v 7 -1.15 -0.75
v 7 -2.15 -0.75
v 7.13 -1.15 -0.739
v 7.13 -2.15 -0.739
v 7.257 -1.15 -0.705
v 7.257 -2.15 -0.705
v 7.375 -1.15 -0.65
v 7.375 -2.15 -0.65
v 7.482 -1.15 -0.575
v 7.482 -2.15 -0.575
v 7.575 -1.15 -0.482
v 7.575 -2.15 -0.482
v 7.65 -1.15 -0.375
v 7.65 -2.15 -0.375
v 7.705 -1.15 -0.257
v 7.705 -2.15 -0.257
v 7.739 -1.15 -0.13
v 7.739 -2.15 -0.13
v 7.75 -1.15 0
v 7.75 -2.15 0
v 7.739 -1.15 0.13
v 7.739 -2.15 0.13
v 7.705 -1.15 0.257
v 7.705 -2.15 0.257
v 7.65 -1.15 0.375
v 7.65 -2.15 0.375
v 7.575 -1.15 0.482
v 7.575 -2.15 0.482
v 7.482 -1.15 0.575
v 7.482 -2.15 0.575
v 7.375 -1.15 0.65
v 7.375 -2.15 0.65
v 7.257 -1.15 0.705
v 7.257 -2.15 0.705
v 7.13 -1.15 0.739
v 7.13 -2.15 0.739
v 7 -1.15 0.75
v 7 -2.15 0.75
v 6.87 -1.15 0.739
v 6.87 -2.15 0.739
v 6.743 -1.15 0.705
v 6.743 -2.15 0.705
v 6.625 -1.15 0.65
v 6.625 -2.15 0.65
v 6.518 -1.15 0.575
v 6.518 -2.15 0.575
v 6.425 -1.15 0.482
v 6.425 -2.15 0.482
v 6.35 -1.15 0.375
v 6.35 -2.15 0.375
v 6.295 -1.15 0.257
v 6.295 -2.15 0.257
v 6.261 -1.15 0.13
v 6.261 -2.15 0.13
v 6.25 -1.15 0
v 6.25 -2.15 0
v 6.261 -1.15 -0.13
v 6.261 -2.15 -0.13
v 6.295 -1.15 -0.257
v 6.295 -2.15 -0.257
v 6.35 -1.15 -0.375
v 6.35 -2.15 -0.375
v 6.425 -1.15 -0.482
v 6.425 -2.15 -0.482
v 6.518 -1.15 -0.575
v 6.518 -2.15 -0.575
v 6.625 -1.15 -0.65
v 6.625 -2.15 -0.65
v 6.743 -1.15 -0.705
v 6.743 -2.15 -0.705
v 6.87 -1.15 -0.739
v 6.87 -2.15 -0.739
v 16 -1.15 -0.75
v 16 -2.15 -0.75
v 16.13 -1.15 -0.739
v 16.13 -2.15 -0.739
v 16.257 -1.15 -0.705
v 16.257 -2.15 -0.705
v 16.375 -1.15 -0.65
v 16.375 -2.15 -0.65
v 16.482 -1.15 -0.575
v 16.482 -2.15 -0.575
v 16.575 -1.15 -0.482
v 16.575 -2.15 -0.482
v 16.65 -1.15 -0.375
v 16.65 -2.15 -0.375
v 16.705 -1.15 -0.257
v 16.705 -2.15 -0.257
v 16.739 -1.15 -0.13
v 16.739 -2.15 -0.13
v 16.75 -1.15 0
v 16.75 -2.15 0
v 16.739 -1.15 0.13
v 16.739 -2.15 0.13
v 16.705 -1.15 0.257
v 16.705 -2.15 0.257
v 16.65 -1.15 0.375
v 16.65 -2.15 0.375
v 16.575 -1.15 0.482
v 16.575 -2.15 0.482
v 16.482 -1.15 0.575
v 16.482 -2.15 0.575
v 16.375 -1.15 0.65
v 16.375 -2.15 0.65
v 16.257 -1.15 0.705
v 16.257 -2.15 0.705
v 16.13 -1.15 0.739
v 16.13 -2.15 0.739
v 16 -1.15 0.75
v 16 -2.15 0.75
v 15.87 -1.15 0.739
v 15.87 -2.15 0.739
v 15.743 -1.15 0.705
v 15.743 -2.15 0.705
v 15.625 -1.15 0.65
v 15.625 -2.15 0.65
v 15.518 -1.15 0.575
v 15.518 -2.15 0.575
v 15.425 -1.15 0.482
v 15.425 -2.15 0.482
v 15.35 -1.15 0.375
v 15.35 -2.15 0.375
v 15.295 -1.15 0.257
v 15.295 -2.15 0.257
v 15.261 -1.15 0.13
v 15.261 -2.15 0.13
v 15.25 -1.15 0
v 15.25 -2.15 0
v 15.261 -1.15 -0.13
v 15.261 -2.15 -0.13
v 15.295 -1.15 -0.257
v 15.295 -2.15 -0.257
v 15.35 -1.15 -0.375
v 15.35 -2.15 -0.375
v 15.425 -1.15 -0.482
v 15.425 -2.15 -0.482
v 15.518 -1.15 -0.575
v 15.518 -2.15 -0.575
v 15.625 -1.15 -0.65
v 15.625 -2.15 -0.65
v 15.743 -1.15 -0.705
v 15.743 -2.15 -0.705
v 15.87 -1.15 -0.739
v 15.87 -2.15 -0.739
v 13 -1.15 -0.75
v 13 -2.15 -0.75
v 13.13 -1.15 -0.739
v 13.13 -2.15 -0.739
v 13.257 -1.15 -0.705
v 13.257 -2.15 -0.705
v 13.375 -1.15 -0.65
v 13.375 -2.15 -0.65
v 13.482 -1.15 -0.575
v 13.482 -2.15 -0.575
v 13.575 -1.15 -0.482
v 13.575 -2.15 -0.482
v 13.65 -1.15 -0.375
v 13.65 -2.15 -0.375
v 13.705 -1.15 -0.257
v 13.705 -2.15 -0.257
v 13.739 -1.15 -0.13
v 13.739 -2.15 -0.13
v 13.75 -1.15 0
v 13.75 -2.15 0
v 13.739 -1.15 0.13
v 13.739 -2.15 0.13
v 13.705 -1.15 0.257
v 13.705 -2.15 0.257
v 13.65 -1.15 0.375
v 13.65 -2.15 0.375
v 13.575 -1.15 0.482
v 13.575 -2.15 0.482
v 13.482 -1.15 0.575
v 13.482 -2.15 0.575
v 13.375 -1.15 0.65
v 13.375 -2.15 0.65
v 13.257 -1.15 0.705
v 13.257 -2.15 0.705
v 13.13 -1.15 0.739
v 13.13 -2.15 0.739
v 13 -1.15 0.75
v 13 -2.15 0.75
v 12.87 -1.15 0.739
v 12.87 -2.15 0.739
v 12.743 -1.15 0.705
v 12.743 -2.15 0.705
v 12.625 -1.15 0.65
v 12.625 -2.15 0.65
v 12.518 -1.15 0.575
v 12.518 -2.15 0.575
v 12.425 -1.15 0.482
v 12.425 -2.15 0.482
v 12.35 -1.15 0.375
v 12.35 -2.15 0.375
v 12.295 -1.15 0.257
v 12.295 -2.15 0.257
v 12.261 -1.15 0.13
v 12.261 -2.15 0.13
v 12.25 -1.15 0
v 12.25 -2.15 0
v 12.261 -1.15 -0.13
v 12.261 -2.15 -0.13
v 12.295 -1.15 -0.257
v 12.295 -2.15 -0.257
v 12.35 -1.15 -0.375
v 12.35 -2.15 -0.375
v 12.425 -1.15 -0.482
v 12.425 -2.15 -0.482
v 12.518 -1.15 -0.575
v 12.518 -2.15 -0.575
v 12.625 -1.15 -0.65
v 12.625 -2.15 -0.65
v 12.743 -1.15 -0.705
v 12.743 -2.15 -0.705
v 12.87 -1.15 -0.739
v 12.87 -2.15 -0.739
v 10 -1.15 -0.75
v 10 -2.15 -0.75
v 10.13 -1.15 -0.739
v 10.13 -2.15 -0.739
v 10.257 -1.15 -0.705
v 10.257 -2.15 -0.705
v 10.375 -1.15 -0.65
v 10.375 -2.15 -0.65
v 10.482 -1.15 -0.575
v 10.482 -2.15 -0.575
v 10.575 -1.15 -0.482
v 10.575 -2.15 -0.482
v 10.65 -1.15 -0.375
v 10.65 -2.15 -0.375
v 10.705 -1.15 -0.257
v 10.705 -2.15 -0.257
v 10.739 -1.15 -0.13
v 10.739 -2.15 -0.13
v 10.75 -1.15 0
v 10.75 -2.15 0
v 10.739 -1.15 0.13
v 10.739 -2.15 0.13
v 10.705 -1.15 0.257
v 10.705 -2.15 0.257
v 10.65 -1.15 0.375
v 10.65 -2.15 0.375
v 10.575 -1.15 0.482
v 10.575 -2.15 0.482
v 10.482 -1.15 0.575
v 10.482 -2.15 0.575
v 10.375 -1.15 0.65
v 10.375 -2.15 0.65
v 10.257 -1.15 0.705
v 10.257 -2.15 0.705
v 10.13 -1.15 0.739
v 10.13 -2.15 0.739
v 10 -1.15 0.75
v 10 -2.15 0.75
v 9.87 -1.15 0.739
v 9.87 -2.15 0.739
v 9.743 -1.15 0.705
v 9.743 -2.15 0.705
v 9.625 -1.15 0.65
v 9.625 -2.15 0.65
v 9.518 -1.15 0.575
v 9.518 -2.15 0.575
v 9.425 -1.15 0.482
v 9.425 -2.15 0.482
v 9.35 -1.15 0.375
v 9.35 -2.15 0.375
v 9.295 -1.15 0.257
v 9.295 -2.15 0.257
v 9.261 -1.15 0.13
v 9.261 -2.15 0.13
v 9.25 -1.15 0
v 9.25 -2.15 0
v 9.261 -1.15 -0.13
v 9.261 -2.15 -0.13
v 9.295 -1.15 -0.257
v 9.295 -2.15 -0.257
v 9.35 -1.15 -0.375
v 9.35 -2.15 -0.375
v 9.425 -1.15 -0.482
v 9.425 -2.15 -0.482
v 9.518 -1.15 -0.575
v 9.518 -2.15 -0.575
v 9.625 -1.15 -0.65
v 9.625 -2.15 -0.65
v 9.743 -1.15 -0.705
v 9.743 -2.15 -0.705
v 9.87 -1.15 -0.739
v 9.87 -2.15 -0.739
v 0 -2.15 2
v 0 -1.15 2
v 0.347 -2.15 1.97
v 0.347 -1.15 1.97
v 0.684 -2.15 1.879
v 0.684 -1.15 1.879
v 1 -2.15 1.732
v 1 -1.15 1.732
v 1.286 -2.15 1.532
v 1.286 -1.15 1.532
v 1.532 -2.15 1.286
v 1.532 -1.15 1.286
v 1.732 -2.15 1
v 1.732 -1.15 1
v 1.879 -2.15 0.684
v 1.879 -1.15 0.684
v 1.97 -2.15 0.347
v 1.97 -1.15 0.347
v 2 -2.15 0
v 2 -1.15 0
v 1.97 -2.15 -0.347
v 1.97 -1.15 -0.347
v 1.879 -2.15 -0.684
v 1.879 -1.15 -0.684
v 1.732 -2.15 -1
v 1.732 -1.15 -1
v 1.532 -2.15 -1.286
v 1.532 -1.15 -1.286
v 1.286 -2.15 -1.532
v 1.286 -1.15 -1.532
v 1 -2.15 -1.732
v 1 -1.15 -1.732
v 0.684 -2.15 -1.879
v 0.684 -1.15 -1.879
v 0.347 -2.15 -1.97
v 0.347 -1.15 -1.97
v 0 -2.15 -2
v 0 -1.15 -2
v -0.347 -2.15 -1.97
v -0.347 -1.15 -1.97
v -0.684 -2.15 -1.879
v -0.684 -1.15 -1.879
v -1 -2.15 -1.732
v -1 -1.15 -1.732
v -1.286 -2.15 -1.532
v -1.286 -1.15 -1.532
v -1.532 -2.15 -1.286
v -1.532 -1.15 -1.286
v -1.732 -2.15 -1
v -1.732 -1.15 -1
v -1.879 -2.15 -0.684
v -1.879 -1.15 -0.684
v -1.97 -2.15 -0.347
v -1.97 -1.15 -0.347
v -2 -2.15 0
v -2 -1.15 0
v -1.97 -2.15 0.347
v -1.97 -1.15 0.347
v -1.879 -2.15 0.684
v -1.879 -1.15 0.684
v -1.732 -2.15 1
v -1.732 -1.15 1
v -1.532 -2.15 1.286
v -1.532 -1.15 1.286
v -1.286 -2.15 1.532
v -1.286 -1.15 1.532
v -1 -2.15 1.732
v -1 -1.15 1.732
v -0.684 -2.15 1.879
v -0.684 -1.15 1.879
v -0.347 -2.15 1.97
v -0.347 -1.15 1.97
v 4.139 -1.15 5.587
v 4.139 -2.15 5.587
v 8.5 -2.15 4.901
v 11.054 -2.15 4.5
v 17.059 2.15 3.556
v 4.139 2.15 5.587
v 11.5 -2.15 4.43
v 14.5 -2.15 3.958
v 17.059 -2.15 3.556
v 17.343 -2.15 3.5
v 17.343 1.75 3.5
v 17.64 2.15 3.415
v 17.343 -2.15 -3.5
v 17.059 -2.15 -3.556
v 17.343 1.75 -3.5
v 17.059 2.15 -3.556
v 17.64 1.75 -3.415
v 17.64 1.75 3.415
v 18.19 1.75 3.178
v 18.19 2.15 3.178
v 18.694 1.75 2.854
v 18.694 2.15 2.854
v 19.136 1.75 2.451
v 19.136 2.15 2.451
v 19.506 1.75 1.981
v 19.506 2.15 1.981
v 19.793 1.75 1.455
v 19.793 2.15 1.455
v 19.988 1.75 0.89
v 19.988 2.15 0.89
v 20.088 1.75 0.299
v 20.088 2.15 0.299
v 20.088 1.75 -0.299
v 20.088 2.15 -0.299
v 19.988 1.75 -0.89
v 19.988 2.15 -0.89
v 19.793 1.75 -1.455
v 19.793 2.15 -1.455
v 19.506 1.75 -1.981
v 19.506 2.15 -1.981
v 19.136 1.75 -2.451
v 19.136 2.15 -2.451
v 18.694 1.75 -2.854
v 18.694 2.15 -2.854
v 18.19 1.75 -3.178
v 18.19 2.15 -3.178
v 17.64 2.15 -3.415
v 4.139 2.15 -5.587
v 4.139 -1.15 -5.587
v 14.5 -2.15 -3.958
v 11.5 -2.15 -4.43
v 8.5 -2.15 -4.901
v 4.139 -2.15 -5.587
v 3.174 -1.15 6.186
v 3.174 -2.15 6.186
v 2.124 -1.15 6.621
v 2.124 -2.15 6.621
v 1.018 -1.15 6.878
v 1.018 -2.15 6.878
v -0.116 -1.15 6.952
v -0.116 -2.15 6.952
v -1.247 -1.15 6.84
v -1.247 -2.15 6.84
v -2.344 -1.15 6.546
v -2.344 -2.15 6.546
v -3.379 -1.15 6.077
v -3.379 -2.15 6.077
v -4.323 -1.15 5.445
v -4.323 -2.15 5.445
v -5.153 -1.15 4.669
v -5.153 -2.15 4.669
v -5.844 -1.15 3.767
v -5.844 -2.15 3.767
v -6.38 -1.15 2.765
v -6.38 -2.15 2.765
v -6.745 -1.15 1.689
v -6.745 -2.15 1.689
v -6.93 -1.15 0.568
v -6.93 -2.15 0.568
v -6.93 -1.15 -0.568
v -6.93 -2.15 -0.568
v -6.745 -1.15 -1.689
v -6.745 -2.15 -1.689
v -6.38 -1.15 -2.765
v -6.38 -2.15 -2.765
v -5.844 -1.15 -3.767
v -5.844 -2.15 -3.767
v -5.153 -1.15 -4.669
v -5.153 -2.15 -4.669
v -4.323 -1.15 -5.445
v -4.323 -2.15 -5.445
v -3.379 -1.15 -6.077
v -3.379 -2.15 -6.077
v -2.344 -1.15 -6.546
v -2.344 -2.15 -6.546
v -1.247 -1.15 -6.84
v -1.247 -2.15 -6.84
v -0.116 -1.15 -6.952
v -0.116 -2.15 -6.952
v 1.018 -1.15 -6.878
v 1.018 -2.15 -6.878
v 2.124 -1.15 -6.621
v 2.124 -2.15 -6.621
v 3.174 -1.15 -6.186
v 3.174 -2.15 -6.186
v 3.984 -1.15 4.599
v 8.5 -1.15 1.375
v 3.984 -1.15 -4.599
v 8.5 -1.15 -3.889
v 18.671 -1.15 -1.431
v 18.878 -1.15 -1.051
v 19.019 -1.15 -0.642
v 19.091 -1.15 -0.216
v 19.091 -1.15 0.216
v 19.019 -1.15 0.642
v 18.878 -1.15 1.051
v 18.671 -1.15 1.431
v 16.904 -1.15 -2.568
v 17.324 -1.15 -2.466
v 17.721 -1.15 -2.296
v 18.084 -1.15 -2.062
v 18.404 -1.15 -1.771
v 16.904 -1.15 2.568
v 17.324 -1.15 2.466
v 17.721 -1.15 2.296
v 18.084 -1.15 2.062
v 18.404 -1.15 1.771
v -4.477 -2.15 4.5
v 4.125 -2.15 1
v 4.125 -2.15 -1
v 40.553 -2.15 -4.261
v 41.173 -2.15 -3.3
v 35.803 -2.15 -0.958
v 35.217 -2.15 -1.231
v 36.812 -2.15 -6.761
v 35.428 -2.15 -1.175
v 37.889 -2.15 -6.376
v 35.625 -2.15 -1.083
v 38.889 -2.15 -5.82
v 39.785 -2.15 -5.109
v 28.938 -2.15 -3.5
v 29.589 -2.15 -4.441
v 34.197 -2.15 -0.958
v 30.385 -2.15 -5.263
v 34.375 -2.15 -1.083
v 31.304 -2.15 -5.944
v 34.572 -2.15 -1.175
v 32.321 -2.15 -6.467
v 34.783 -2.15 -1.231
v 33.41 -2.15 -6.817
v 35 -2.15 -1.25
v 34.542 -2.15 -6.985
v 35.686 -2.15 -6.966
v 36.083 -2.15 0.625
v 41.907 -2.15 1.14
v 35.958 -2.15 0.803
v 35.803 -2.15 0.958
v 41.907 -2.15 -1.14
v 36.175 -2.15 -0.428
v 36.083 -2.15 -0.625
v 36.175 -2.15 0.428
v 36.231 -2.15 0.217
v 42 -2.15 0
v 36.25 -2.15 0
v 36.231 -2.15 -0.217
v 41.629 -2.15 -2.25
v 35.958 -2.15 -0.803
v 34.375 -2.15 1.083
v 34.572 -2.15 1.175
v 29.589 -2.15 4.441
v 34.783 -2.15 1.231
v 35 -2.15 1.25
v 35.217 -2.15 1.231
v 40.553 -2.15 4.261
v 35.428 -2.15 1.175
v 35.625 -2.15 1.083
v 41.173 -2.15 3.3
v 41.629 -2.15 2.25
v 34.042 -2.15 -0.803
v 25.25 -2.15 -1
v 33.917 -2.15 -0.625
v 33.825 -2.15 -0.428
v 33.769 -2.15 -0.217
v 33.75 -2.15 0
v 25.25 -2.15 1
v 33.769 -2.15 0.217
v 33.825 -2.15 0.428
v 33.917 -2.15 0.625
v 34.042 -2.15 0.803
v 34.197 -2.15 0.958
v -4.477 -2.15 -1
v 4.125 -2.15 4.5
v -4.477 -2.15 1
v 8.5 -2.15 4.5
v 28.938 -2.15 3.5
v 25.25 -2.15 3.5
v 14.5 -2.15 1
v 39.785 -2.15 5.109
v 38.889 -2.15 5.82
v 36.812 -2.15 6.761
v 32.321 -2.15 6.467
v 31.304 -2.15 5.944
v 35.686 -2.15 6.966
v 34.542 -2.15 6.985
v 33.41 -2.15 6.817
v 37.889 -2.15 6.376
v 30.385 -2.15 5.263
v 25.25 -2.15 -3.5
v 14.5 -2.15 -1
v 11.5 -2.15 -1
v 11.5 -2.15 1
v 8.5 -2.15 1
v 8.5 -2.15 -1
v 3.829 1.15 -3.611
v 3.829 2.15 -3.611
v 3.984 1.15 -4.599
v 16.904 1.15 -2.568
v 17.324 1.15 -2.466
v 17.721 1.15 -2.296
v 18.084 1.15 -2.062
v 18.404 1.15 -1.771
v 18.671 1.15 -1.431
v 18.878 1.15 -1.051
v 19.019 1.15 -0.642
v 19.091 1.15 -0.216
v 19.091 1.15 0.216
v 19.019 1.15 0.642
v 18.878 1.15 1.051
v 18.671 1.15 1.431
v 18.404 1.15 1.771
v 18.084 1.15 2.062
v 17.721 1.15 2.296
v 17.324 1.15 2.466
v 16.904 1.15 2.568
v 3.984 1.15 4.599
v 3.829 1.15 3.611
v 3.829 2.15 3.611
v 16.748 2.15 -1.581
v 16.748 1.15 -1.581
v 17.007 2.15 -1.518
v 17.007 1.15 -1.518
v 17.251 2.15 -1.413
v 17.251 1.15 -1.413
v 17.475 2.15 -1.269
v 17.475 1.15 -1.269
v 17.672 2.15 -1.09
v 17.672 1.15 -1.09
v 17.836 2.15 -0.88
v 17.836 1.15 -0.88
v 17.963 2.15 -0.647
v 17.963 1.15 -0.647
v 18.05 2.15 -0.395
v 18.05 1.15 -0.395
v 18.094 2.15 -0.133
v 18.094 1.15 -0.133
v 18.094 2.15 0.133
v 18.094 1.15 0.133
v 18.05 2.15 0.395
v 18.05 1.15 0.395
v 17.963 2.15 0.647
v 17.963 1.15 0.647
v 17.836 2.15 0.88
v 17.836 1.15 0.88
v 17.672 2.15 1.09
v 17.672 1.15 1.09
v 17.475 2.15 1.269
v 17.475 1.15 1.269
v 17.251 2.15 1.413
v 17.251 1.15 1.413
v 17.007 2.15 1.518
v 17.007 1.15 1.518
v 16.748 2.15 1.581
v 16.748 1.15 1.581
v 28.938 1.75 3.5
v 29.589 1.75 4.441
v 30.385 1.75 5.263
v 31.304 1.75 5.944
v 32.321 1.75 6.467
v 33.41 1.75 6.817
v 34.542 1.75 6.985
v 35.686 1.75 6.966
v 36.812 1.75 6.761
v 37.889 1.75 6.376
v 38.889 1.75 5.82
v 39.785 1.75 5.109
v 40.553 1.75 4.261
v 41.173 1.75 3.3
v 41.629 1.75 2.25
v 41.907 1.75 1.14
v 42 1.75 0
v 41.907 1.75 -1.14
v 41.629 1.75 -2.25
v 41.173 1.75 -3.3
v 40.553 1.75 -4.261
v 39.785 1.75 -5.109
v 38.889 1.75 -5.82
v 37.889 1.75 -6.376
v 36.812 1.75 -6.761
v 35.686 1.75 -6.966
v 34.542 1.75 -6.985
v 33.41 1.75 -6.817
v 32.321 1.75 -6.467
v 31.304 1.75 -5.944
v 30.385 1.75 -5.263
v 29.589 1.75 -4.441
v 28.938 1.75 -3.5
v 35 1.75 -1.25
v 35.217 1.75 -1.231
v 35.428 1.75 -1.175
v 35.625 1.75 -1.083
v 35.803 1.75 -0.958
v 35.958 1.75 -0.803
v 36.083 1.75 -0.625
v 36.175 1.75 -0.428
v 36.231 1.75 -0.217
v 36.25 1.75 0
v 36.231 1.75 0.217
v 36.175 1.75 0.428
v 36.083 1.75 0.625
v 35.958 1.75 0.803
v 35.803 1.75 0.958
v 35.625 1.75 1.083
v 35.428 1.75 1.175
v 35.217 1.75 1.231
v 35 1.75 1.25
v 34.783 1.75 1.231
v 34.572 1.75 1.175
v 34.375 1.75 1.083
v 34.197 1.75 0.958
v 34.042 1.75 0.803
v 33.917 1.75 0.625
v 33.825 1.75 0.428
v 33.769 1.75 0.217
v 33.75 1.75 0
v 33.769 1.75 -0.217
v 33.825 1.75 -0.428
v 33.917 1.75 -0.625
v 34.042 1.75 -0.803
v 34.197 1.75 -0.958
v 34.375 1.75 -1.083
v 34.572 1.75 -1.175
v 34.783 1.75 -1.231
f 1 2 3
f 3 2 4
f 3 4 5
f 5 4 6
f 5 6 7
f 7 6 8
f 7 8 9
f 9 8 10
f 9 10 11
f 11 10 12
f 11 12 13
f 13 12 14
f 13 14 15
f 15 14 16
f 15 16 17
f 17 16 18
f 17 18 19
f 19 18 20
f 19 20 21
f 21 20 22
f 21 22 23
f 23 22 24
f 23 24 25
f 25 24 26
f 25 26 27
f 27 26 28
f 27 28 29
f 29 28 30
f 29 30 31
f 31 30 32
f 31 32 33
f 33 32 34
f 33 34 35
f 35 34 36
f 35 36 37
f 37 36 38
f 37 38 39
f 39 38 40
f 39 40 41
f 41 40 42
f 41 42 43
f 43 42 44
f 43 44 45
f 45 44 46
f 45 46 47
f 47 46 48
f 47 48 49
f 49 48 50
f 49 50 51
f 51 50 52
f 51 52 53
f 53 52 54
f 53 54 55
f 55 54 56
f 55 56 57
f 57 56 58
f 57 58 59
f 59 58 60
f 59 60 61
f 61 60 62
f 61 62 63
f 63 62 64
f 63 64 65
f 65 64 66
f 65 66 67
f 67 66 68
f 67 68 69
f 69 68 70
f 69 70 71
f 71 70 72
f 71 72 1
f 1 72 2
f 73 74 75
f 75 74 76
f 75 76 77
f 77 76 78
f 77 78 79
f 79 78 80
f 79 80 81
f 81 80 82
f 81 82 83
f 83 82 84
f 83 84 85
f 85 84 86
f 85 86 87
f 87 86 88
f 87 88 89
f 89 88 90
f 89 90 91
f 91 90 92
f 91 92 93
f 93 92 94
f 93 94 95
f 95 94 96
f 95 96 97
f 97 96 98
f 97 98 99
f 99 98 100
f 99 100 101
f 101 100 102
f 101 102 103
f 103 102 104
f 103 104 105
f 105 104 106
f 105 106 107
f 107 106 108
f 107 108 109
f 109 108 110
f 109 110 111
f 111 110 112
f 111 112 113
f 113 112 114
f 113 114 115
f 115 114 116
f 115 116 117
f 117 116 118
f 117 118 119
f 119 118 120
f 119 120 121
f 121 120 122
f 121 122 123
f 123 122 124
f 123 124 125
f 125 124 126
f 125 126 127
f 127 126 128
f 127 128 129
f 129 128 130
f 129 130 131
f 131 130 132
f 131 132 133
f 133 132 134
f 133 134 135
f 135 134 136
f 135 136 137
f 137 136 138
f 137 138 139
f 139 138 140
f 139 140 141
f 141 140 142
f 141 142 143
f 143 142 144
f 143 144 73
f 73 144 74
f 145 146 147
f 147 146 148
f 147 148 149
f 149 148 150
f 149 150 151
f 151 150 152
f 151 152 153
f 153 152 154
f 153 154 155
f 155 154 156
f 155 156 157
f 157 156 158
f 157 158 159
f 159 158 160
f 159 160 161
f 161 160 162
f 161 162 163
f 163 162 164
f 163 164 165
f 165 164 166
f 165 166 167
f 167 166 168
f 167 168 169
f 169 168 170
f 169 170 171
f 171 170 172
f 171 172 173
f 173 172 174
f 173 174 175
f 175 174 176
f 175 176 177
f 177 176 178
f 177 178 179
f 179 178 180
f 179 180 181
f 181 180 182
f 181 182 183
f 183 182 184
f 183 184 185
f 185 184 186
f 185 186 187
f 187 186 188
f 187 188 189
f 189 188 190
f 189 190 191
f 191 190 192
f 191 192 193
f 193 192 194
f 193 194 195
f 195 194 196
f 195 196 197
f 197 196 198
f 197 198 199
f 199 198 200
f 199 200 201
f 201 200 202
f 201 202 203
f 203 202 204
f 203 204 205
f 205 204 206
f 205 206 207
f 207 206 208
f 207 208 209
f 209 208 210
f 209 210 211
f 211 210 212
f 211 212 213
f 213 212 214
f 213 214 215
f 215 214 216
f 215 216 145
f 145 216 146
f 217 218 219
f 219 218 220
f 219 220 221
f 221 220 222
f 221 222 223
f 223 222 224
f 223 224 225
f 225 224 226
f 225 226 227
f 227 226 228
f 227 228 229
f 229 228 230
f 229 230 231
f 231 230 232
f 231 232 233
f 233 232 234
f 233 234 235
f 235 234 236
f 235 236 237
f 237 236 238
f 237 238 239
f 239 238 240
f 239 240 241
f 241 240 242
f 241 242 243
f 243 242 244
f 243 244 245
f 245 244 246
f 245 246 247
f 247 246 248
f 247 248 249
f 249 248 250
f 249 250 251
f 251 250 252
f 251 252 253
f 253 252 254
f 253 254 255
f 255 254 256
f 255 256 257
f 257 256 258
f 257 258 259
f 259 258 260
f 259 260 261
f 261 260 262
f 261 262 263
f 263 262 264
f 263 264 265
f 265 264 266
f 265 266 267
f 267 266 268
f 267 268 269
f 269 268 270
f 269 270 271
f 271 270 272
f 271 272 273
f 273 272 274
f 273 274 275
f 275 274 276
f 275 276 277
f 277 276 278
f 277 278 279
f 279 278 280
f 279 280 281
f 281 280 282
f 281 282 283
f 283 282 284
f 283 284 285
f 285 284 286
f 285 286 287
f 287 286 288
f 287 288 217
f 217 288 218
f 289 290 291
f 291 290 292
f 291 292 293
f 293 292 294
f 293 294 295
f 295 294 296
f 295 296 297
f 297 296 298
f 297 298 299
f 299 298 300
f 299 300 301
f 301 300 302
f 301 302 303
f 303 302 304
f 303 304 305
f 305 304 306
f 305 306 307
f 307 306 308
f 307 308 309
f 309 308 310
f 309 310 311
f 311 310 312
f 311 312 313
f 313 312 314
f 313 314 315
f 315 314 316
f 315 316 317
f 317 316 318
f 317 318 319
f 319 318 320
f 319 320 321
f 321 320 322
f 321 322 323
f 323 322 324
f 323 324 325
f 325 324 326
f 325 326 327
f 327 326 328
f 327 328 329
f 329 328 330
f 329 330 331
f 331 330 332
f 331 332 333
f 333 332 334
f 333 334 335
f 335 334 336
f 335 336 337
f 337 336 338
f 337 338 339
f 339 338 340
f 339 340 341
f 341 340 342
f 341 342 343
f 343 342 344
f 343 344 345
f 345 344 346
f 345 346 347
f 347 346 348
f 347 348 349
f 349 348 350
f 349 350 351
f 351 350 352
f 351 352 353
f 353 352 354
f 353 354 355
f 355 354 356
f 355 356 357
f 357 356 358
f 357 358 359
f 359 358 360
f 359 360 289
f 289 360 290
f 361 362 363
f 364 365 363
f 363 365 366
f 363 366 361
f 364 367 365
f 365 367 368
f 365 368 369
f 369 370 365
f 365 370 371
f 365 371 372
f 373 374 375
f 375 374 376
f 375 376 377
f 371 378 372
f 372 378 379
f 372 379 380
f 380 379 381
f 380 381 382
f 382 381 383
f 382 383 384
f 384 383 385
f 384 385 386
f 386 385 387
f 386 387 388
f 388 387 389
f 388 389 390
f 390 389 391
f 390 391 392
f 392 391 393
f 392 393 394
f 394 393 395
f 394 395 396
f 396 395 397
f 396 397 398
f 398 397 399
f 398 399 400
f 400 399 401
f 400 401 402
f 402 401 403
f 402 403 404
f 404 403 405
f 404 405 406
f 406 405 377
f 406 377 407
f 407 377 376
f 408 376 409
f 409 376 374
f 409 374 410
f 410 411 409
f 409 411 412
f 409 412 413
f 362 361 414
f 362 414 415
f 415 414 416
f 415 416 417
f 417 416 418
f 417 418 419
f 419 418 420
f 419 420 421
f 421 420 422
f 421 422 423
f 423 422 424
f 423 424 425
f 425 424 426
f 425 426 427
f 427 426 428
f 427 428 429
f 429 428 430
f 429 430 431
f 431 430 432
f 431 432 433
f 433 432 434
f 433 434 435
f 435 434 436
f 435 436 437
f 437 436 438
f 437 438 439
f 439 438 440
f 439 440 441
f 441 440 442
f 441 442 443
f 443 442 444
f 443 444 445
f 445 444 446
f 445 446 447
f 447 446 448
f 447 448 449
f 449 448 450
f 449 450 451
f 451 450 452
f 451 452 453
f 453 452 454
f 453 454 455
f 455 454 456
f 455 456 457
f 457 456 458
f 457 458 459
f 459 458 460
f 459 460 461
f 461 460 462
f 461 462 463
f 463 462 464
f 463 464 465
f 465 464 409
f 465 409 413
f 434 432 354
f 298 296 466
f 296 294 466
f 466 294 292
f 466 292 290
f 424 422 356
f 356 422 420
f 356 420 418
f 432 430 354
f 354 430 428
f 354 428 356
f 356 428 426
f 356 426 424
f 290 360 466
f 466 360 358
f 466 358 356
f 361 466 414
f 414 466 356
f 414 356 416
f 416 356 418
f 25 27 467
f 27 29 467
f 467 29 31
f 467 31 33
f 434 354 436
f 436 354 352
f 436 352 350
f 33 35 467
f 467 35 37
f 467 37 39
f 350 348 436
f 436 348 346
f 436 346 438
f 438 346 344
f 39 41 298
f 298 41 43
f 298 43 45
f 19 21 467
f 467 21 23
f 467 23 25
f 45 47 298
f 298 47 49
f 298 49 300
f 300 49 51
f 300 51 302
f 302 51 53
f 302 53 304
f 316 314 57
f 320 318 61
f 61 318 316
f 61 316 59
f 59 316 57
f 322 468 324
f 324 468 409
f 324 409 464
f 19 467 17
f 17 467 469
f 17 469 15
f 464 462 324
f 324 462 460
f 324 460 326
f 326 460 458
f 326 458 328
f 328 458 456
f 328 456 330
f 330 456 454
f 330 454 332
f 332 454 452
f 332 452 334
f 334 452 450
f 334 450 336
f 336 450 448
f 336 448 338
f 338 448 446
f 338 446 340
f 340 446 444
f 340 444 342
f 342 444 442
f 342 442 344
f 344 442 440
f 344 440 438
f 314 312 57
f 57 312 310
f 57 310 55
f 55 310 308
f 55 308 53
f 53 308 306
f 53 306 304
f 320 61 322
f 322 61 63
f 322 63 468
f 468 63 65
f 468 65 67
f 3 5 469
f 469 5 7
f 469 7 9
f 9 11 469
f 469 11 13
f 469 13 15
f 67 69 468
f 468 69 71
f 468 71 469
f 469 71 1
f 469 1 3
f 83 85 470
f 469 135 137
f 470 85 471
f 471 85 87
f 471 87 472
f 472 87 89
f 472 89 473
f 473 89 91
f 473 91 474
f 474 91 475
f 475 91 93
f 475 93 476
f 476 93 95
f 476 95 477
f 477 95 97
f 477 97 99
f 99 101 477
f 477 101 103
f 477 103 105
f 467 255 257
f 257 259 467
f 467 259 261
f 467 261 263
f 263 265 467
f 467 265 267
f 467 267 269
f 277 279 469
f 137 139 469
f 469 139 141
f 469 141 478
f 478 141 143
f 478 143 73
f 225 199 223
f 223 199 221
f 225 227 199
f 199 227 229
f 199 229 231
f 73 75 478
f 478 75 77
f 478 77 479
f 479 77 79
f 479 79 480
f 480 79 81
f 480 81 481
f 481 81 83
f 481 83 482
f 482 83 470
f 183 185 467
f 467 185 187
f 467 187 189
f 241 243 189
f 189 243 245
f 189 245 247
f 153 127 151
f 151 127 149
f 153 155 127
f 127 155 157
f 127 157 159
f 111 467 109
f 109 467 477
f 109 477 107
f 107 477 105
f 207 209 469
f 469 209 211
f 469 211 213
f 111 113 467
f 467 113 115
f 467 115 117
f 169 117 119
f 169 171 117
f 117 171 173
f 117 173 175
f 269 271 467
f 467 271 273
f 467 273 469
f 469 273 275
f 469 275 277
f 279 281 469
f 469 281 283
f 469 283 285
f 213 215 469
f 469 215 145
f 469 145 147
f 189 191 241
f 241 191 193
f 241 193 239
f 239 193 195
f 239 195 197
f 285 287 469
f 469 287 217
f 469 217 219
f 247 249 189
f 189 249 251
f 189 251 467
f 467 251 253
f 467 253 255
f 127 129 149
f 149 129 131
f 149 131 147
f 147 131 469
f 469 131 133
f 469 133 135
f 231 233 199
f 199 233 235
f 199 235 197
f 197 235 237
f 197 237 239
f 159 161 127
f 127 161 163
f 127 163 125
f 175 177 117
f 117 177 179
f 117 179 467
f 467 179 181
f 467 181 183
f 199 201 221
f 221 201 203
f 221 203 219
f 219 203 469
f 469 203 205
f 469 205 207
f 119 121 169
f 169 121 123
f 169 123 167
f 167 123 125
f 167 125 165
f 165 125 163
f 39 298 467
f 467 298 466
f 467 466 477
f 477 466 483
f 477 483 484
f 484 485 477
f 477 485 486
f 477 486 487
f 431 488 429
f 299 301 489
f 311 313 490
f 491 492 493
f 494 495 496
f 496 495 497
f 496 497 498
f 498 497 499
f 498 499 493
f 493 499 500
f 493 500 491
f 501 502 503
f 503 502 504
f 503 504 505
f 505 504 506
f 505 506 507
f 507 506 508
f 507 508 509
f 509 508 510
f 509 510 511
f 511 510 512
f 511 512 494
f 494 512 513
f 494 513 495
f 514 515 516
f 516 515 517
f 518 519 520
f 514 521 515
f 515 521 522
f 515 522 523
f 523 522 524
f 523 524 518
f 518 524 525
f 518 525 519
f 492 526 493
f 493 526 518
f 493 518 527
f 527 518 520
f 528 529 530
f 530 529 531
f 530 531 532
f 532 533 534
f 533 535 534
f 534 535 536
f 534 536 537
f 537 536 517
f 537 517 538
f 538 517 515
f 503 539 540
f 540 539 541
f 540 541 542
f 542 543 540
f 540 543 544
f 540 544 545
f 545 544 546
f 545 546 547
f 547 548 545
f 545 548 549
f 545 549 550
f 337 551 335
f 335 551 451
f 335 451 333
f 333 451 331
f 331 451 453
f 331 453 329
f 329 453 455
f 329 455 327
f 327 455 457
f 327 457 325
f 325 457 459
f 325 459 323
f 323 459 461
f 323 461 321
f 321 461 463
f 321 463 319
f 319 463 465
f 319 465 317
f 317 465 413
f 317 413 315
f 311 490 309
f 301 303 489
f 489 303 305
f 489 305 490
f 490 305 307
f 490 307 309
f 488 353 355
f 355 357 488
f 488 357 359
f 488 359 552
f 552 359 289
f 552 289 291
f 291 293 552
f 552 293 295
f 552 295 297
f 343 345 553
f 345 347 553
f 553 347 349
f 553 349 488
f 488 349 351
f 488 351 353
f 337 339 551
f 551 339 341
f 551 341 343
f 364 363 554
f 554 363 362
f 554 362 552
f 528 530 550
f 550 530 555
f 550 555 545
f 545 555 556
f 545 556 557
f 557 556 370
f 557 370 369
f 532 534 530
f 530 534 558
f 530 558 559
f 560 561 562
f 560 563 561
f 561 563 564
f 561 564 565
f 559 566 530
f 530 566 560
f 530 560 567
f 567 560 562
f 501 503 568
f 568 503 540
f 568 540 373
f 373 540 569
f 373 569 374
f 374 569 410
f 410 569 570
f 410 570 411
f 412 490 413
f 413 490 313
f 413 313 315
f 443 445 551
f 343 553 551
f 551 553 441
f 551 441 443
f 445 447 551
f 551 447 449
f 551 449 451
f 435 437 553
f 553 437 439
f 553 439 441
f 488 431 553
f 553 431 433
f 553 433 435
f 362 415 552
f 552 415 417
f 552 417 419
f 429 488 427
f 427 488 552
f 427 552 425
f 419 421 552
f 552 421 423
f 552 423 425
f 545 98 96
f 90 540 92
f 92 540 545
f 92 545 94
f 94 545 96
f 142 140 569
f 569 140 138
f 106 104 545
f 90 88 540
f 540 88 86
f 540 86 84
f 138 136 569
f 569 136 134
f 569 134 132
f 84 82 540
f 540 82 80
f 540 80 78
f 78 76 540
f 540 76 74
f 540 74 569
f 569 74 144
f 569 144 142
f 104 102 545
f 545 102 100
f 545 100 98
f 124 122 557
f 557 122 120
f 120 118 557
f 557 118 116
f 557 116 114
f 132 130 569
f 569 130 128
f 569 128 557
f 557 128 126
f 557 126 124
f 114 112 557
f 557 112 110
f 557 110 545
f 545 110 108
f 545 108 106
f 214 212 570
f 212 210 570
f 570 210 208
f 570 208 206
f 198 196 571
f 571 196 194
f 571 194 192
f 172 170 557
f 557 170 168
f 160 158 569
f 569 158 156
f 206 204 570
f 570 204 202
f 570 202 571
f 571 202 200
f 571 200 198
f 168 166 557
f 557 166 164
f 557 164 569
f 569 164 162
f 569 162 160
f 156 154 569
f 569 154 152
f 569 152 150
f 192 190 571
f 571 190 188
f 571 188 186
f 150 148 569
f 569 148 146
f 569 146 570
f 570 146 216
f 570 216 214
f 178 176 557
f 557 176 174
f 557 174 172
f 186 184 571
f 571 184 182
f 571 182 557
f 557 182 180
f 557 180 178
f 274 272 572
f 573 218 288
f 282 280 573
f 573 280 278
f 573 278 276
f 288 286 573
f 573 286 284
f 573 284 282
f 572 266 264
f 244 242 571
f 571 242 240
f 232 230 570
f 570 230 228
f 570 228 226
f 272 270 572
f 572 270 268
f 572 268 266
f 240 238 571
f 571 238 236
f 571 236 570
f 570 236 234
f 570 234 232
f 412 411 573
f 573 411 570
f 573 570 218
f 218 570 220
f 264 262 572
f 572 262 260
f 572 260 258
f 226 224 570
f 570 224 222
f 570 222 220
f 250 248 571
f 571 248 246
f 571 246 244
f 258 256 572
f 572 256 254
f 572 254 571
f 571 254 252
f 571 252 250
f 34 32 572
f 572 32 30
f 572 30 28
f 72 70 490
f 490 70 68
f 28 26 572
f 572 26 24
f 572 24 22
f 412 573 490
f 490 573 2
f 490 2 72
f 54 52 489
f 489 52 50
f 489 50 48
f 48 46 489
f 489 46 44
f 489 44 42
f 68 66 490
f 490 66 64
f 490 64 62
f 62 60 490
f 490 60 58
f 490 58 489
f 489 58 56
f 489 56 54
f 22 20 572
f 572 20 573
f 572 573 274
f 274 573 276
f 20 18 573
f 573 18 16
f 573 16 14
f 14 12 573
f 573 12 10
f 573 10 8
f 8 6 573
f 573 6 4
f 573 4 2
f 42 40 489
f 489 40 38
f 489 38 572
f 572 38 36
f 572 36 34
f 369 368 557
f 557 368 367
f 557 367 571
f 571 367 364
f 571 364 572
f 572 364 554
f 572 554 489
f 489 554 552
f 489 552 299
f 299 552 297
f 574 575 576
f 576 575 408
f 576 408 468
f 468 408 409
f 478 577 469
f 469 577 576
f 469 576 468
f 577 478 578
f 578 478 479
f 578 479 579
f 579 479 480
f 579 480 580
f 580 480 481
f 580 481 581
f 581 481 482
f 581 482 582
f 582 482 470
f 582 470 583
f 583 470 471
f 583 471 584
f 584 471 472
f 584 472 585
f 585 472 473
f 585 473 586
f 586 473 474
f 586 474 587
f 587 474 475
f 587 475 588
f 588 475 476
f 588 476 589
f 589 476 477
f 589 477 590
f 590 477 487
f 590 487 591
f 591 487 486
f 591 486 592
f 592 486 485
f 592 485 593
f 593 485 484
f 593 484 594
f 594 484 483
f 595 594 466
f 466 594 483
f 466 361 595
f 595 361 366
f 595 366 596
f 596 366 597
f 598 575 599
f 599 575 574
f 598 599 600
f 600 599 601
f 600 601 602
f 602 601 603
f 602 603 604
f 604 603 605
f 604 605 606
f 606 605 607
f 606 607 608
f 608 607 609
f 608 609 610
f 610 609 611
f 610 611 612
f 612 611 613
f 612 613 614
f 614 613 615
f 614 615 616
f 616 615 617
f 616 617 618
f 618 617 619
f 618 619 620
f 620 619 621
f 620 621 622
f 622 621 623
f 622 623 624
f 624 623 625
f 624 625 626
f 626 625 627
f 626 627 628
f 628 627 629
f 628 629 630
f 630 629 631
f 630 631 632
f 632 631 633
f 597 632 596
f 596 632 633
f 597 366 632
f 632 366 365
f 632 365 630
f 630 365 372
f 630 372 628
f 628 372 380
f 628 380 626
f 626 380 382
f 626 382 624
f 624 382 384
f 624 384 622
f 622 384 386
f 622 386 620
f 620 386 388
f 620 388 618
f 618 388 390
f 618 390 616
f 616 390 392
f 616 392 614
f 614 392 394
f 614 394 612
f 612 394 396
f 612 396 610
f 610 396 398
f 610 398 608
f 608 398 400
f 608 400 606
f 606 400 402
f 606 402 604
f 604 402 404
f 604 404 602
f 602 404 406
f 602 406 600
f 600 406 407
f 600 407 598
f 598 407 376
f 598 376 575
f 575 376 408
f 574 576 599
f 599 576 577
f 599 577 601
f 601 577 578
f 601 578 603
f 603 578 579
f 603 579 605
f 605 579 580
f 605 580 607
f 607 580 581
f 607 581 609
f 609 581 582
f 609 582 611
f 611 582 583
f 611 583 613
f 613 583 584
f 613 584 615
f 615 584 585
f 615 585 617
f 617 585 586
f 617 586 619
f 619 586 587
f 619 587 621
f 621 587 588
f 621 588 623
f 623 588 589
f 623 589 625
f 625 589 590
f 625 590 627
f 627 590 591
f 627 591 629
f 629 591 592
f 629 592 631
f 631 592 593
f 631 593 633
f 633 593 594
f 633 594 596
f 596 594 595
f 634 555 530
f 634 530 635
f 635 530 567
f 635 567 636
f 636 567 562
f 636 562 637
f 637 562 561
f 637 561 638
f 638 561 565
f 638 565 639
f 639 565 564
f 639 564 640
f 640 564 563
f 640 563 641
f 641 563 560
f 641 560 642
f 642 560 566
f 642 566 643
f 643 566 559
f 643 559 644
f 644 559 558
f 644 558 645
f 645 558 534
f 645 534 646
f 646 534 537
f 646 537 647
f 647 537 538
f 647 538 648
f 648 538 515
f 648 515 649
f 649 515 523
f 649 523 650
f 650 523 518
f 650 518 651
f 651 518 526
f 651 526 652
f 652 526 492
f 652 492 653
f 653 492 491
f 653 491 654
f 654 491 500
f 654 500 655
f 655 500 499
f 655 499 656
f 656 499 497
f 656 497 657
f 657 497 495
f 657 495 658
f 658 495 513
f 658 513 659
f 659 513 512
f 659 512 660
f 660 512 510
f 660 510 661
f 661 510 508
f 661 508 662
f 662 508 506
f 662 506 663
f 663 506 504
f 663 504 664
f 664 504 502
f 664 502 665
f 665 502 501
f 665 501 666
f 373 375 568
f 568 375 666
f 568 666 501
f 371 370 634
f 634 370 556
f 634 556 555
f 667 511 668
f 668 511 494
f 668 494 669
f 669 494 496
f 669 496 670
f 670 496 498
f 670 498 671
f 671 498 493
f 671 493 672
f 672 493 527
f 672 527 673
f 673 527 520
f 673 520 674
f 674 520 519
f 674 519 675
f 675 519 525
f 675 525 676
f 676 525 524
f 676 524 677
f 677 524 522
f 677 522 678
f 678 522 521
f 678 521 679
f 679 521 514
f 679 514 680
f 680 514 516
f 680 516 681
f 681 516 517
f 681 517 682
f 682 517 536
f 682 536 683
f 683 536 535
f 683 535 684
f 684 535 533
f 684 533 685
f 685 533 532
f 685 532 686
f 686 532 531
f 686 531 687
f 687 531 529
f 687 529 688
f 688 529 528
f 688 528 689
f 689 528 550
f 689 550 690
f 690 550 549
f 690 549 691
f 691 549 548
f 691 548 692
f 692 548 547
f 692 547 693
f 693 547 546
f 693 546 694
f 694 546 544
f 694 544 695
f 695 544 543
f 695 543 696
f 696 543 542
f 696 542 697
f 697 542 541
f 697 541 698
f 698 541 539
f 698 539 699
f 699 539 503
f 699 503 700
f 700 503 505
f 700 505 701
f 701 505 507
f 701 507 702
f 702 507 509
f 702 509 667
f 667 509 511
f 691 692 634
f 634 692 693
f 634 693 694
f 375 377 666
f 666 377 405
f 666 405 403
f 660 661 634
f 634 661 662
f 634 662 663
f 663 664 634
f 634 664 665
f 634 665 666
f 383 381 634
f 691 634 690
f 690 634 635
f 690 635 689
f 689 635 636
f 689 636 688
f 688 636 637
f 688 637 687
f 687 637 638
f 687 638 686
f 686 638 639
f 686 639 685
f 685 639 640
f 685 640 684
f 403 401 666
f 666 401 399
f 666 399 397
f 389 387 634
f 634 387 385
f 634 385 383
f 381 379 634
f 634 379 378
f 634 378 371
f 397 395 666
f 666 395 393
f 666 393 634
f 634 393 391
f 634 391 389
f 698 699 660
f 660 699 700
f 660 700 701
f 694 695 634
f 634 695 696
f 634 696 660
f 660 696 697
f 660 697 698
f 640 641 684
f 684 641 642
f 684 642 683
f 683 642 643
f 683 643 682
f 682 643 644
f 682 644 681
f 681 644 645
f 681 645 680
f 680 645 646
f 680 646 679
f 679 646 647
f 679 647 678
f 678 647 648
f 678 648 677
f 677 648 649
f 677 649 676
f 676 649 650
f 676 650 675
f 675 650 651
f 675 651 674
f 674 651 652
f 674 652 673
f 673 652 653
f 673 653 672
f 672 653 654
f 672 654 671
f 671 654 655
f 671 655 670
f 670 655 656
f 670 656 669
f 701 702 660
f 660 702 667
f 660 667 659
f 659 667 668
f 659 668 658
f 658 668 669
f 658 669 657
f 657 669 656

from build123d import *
from build123d.topology import SkipClean

# Parameters (mm, degrees)
SKETCH2_R           = 6
SKETCH2_R_2         = 1.5
BOSS_EXTRUDE1_DEPTH = 1.15
SKETCH3_R           = 4.4
BOSS_EXTRUDE2_DEPTH = 3.2
SKETCH4_R           = 0.75
BOSS_EXTRUDE3_DEPTH = 1.15
CIRPATTERN1_COUNT   = 2
BOSS_EXTRUDE5_DEPTH = 2.3
SKETCH7_R           = 2
BOSS_EXTRUDE6_DEPTH = 1
CUT_EXTRUDE2_DEPTH  = 23.239726126
CUT_EXTRUDE4_DEPTH  = 2.3
SKETCH13_R          = 4.4
CUT_EXTRUDE5_DEPTH  = 3.3
BOSS_EXTRUDE8_DEPTH = 1
SKETCH14_R          = 1.25
BOSS_EXTRUDE9_DEPTH = 3.9


with BuildPart() as part:
    # Sketch2 → Boss-Extrude1 (new, symmetric)
    with BuildSketch(Plane(origin=(0, 0, 0), x_dir=(1, 0, 0), z_dir=(0, 1, 0))):
        with Locations(Location((0, 0, 0), (0, 0, 270))):
            Circle(SKETCH2_R)
        with Locations(Location((0, 0, 0), (0, 0, 270))):
            Circle(SKETCH2_R_2, mode=Mode.SUBTRACT)
    extrude(amount=BOSS_EXTRUDE1_DEPTH, both=True)

    # Sketch3 → Boss-Extrude2 (add)
    with BuildSketch(Plane(origin=(0, 1.15, 0), x_dir=(1, 0, 0), z_dir=(0, 1, 0))):
        with Locations(Location((0, 0, 0), (0, 0, 270))):
            Circle(SKETCH3_R)
        with BuildLine():
            Line((0.107421435, 2.898009771), (0.338399731, 2.678709694))
            Line((0.338399731, 2.678709694), (0.61665913, 2.83367809))
            ThreePointArc((0.61665913, 2.83367809), (0.721200673, 2.808891167), (0.824752316, 2.780248841))
            Line((0.824752316, 2.780248841), (0.993936292, 2.510396512))
            Line((0.993936292, 2.510396512), (1.301992734, 2.591295993))
            ThreePointArc((1.301992734, 2.591295993), (1.397085655, 2.541289372), (1.490260976, 2.48779465))
            Line((1.490260976, 2.48779465), (1.587020181, 2.184345885))
            Line((1.587020181, 2.184345885), (1.905517346, 2.186093238))
            ThreePointArc((1.905517346, 2.186093238), (1.985186607, 2.11400902), (2.062131058, 2.039023173))
            Line((2.062131058, 2.039023173), (2.080385755, 1.721044772))
            Line((2.080385755, 1.721044772), (2.389311295, 1.643530205))
            ThreePointArc((2.389311295, 1.643530205), (2.448550984, 1.553897705), (2.504429862, 1.46213237))
            Line((2.504429862, 1.46213237), (2.443033042, 1.149604087))
            Line((2.443033042, 1.149604087), (2.722976028, 0.997698125))
            ThreePointArc((2.722976028, 0.997698125), (2.758063897, 0.896149284), (2.789366126, 0.793370413))
            Line((2.789366126, 0.793370413), (2.652175577, 0.505929549))
            Line((2.652175577, 0.505929549), (2.885546163, 0.289177003))
            ThreePointArc((2.885546163, 0.289177003), (2.894277512, 0.182092507), (2.899036259, 0.074758075))
            Line((2.899036259, 0.074758075), (2.694672167, -0.169534403))
            Line((2.694672167, -0.169534403), (2.866806821, -0.437514174))
            ThreePointArc((2.866806821, -0.437514174), (2.848633027, -0.543405812), (2.826549281, -0.648551587))
            Line((2.826549281, -0.648551587), (2.567852594, -0.834345885))
            Line((2.567852594, -0.834345885), (2.667935462, -1.136714727))
            ThreePointArc((2.667935462, -1.136714727), (2.623998452, -1.234759946), (2.576459817, -1.331110368))
            Line((2.576459817, -1.331110368), (2.279685399, -1.446732346))
            Line((2.279685399, -1.446732346), (2.301427906, -1.764491312))
            ThreePointArc((2.301427906, -1.764491312), (2.234488404, -1.84852957), (2.164481907, -1.930030589))
            Line((2.164481907, -1.930030589), (1.848277186, -1.968215294))
            Line((1.848277186, -1.968215294), (1.790313171, -2.281398419))
            ThreePointArc((1.790313171, -2.281398419), (1.704577232, -2.346149284), (1.616501638, -2.40767989))
            Line((1.616501638, -2.40767989), (1.30073492, -2.366028036))
            Line((1.30073492, -2.366028036), (1.166706475, -2.654956874))
            ThreePointArc((1.166706475, -2.654956874), (1.067561203, -2.696351809), (0.966950626, -2.734045809))
            Line((0.966950626, -2.734045809), (0.671462695, -2.615174535))
            Line((0.671462695, -2.615174535), (0.469791321, -2.861694623))
            ThreePointArc((0.469791321, -2.861694623), (0.363466377, -2.877132634), (0.25664255, -2.888621575))
            Line((0.25664255, -2.888621575), (0, -2.7))
            Line((0, -2.7), (-0.25664255, -2.888621575))
            ThreePointArc((-0.25664255, -2.888621575), (-0.363466377, -2.877132634), (-0.469791321, -2.861694623))
            Line((-0.469791321, -2.861694623), (-0.671462695, -2.615174535))
            Line((-0.671462695, -2.615174535), (-0.966950626, -2.734045809))
            ThreePointArc((-0.966950626, -2.734045809), (-1.067561203, -2.696351809), (-1.166706475, -2.654956874))
            Line((-1.166706475, -2.654956874), (-1.30073492, -2.366028036))
            Line((-1.30073492, -2.366028036), (-1.616501638, -2.40767989))
            ThreePointArc((-1.616501638, -2.40767989), (-1.704577232, -2.346149284), (-1.790313171, -2.281398419))
            Line((-1.790313171, -2.281398419), (-1.848277186, -1.968215294))
            Line((-1.848277186, -1.968215294), (-2.164481907, -1.930030589))
            ThreePointArc((-2.164481907, -1.930030589), (-2.234488404, -1.84852957), (-2.301427906, -1.764491312))
            Line((-2.301427906, -1.764491312), (-2.279685399, -1.446732346))
            Line((-2.279685399, -1.446732346), (-2.576459817, -1.331110368))
            ThreePointArc((-2.576459817, -1.331110368), (-2.623998452, -1.234759946), (-2.667935462, -1.136714727))
            Line((-2.667935462, -1.136714727), (-2.567852594, -0.834345885))
            Line((-2.567852594, -0.834345885), (-2.826549281, -0.648551587))
            ThreePointArc((-2.826549281, -0.648551587), (-2.848633027, -0.543405812), (-2.866806821, -0.437514174))
            Line((-2.866806821, -0.437514174), (-2.694672167, -0.169534403))
            Line((-2.694672167, -0.169534403), (-2.899036259, 0.074758075))
            ThreePointArc((-2.899036259, 0.074758075), (-2.894277512, 0.182092507), (-2.885546163, 0.289177003))
            Line((-2.885546163, 0.289177003), (-2.652175577, 0.505929549))
            Line((-2.652175577, 0.505929549), (-2.789366126, 0.793370413))
            ThreePointArc((-2.789366126, 0.793370413), (-2.758063897, 0.896149284), (-2.722976028, 0.997698125))
            Line((-2.722976028, 0.997698125), (-2.443033042, 1.149604087))
            Line((-2.443033042, 1.149604087), (-2.504429862, 1.46213237))
            ThreePointArc((-2.504429862, 1.46213237), (-2.448550984, 1.553897705), (-2.389311295, 1.643530205))
            Line((-2.389311295, 1.643530205), (-2.080385755, 1.721044772))
            Line((-2.080385755, 1.721044772), (-2.062131058, 2.039023173))
            ThreePointArc((-2.062131058, 2.039023173), (-1.985186607, 2.11400902), (-1.905517346, 2.186093238))
            Line((-1.905517346, 2.186093238), (-1.587020181, 2.184345885))
            Line((-1.587020181, 2.184345885), (-1.490260976, 2.48779465))
            ThreePointArc((-1.490260976, 2.48779465), (-1.397085655, 2.541289372), (-1.301992734, 2.591295993))
            Line((-1.301992734, 2.591295993), (-0.993936292, 2.510396512))
            Line((-0.993936292, 2.510396512), (-0.824752316, 2.780248841))
            ThreePointArc((-0.824752316, 2.780248841), (-0.721200673, 2.808891167), (-0.61665913, 2.83367809))
            Line((-0.61665913, 2.83367809), (-0.338399731, 2.678709694))
            Line((-0.338399731, 2.678709694), (-0.107421435, 2.898009771))
            ThreePointArc((-0.107421435, 2.898009771), (0, 2.9), (0.107421435, 2.898009771))
        make_face(mode=Mode.SUBTRACT)
    extrude(amount=BOSS_EXTRUDE2_DEPTH)

    # Sketch4 → Boss-Extrude3 (add, symmetric)
    with BuildSketch(Plane(origin=(0, 0, 0), x_dir=(1, 0, 0), z_dir=(0, 1, 0))):
        with BuildLine():
            Line((3.968626967, 4.5), (16.888114198, 2.469689731))
            ThreePointArc((16.888114198, 2.469689731), (19, 0), (16.888114198, -2.469689731))
            Line((16.888114198, -2.469689731), (3.968626967, -4.5))
            ThreePointArc((3.968626967, -4.5), (6, 0), (3.968626967, 4.5))
        make_face()
        with Locations(Location((16, 0, 0), (0, 0, 270))):
            Circle(SKETCH4_R, mode=Mode.SUBTRACT)
        with Locations(Location((13, 0, 0), (0, 0, 270))):
            Circle(SKETCH4_R, mode=Mode.SUBTRACT)
        with Locations(Location((10, 0, 0), (0, 0, 270))):
            Circle(SKETCH4_R, mode=Mode.SUBTRACT)
        with Locations(Location((7, 0, 0), (0, 0, 270))):
            Circle(SKETCH4_R, mode=Mode.SUBTRACT)
    boss_extrude3 = extrude(amount=BOSS_EXTRUDE3_DEPTH, both=True)

    # CirPattern1: Boss-Extrude3 ×2 about axis
    cirpattern1_axis = Axis((0, 0, 0), (0, 1, 0))
    for i in range(1, CIRPATTERN1_COUNT):
        add(boss_extrude3.rotate(cirpattern1_axis, i * 360 / CIRPATTERN1_COUNT))



with BuildPart() as body_2:
    # Sketch6 → Boss-Extrude5 (new body)
    with BuildSketch(Plane.XZ.offset(1.15)):
        with BuildLine():
            Line((17.058884445, -3.556353213), (4.139397214, -5.586663482))
            Line((4.139397214, -5.586663482), (3.984151535, -4.598787589))
            Line((3.984151535, -4.598787589), (16.903638766, -2.568477321))
            ThreePointArc((16.903638766, -2.568477321), (19.1, 0), (16.903638766, 2.568477321))
            Line((16.903638766, 2.568477321), (3.984151535, 4.598787589))
            Line((3.984151535, 4.598787589), (4.139397214, 5.586663482))
            Line((4.139397214, 5.586663482), (17.058884445, 3.556353213))
            ThreePointArc((17.058884445, 3.556353213), (20.1, 0), (17.058884445, -3.556353213))
        make_face()
    extrude(amount=-BOSS_EXTRUDE5_DEPTH)


with BuildPart() as part_1:
    add(part.part)

    add(body_2.part)  # Boss-Extrude6 merges body 2
    # Sketch7 → Boss-Extrude6 (add)
    with BuildSketch(Plane.XZ.offset(1.15)):
        with BuildLine():
            Line((4.139397214, -5.586663482), (17.058884445, -3.556353213))
            ThreePointArc((17.058884445, -3.556353213), (20.1, 0), (17.058884445, 3.556353213))
            Line((17.058884445, 3.556353213), (4.139397214, 5.586663482))
            ThreePointArc((4.139397214, 5.586663482), (-6.953086951, 0), (4.139397214, -5.586663482))
        make_face()
        with Locations(Location((0, 0, 0), (0, 0, 270))):
            Circle(SKETCH7_R, mode=Mode.SUBTRACT)
    extrude(amount=BOSS_EXTRUDE6_DEPTH)

    # Sketch10 → Cut-Extrude2 (cut, through all)
    with SkipClean():  # the faces are left unmerged after this step: merging them gives an invalid solid
        with BuildSketch(Plane.XZ.offset(2.15)):
            with BuildLine():
                ThreePointArc((10.75, 0), (10, 0.75), (9.25, 0))
                Line((9.25, 0), (10.75, 0))
            make_face()
            with BuildLine():
                Line((10.75, 0), (9.25, 0))
                ThreePointArc((9.25, 0), (10, -0.75), (10.75, 0))
            make_face()
            with BuildLine():
                ThreePointArc((13.75, 0), (13, 0.75), (12.25, 0))
                Line((12.25, 0), (13.75, 0))
            make_face()
            with BuildLine():
                Line((13.75, 0), (12.25, 0))
                ThreePointArc((12.25, 0), (13, -0.75), (13.75, 0))
            make_face()
            with BuildLine():
                ThreePointArc((16.75, 0), (16, 0.75), (15.25, 0))
                Line((15.25, 0), (16.75, 0))
            make_face()
            with BuildLine():
                Line((16.75, 0), (15.25, 0))
                ThreePointArc((15.25, 0), (16, -0.75), (16.75, 0))
            make_face()
            with BuildLine():
                ThreePointArc((7.75, 0), (7, 0.75), (6.25, 0))
                Line((6.25, 0), (7.75, 0))
            make_face()
            with BuildLine():
                Line((7.75, 0), (6.25, 0))
                ThreePointArc((6.25, 0), (7, -0.75), (7.75, 0))
            make_face()
        extrude(amount=-CUT_EXTRUDE2_DEPTH, mode=Mode.SUBTRACT)

    # Sketch12 → Cut-Extrude4 (cut)
    with BuildSketch(Plane(origin=(0, 1.15, 0), x_dir=(1, 0, 0), z_dir=(0, 1, 0))):
        with BuildLine():
            Line((-3.968626967, 4.5), (-16.888114198, 2.469689731))
            ThreePointArc((-16.888114198, 2.469689731), (-19, 0), (-16.888114198, -2.469689731))
            Line((-16.888114198, -2.469689731), (-3.968626967, -4.5))
            ThreePointArc((-3.968626967, -4.5), (0, -6), (3.968626967, -4.5))
            Line((3.968626967, -4.5), (16.888114198, -2.469689731))
            ThreePointArc((16.888114198, -2.469689731), (19, 0), (16.888114198, 2.469689731))
            Line((16.888114198, 2.469689731), (3.968626967, 4.5))
            ThreePointArc((3.968626967, 4.5), (0, 6), (-3.968626967, 4.5))
        make_face()
    extrude(amount=-CUT_EXTRUDE4_DEPTH, mode=Mode.SUBTRACT)


with BuildPart() as cut_extrude4_piece_1:
    # of the separate pieces the step leaves, piece 1, a body of its own (cut_extrude4_pieces)
    add(part_1.part.solids().sort_by_distance((4.139397214, -1.15, -5.586663482))[0])

    # Sketch9 → Boss-Extrude8 (add)
    with BuildSketch(Plane(origin=(0, 1.15, 0), x_dir=(1, 0, 0), z_dir=(0, 1, 0))):
        with BuildLine():
            ThreePointArc((17.058884445, -3.556353213), (20.1, 0), (17.058884445, 3.556353213))
            Line((17.058884445, 3.556353213), (4.139397214, 5.586663482))
            Line((4.139397214, 5.586663482), (3.984151535, 4.598787589))
            Line((3.984151535, 4.598787589), (16.903638766, 2.568477321))
            ThreePointArc((16.903638766, 2.568477321), (19.1, 0), (16.903638766, -2.568477321))
            Line((16.903638766, -2.568477321), (3.984151535, -4.598787589))
            Line((3.984151535, -4.598787589), (4.139397214, -5.586663482))
            Line((4.139397214, -5.586663482), (17.058884445, -3.556353213))
        make_face()
        with BuildLine():
            ThreePointArc((16.748393087, -1.580601428), (18.1, 0), (16.748393087, 1.580601428))
            Line((16.748393087, 1.580601428), (3.828905855, 3.610911697))
            Line((3.828905855, 3.610911697), (3.984151535, 4.598787589))
            Line((3.984151535, 4.598787589), (16.903638766, 2.568477321))
            ThreePointArc((16.903638766, 2.568477321), (19.1, 0), (16.903638766, -2.568477321))
            Line((16.903638766, -2.568477321), (3.984151535, -4.598787589))
            Line((3.984151535, -4.598787589), (3.828905855, -3.610911697))
            Line((3.828905855, -3.610911697), (16.748393087, -1.580601428))
        make_face()
    extrude(amount=BOSS_EXTRUDE8_DEPTH)

    # Sketch14 → Boss-Extrude9 (add)
    # profile 1 of 5: a face of its own
    with BuildSketch(Plane.XZ.offset(2.15)):
        with BuildLine():
            Line((28, 0), (20.1, 0))
            ThreePointArc((20.1, 0), (19.327844932, -2.227844932), (17.342614977, -3.5))
            Line((17.342614977, -3.5), (28.937822174, -3.5))
            ThreePointArc((28.937822174, -3.5), (28.238519216, -1.811733316), (28, 0))
        make_face()
    # profile 2 of 5: a face of its own
    with BuildSketch(Plane.XZ.offset(2.15)):
        with BuildLine():
            ThreePointArc((17.342614977, 3.5), (19.327844932, 2.227844932), (20.1, 0))
            Line((20.1, 0), (28, 0))
            ThreePointArc((28, 0), (28.238519216, 1.811733316), (28.937822174, 3.5))
            Line((28.937822174, 3.5), (17.342614977, 3.5))
        make_face()
    # profile 3 of 5: a face of its own
    with BuildSketch(Plane.XZ.offset(2.15)):
        with BuildLine():
            Line((30.836953373, 3.5), (30.836953373, 0))
            Line((30.836953373, 0), (30.836953373, -3.5))
            Line((30.836953373, -3.5), (28.937822174, -3.5))
            ThreePointArc((28.937822174, -3.5), (36.811733316, -6.761480784), (42, 0))
            ThreePointArc((42, 0), (36.811733316, 6.761480784), (28.937822174, 3.5))
            Line((28.937822174, 3.5), (30.836953373, 3.5))
        make_face()
        with Locations(Location((35, 0, 0), (0, 0, 270))):
            Circle(SKETCH14_R, mode=Mode.SUBTRACT)
    # profile 4 of 5: a face of its own
    with BuildSketch(Plane.XZ.offset(2.15)):
        with BuildLine():
            Line((30.836953373, 0), (28, 0))
            ThreePointArc((28, 0), (28.238519216, -1.811733316), (28.937822174, -3.5))
            Line((28.937822174, -3.5), (30.836953373, -3.5))
            Line((30.836953373, -3.5), (30.836953373, 0))
        make_face()
    # profile 5 of 5: a face of its own
    with BuildSketch(Plane.XZ.offset(2.15)):
        with BuildLine():
            ThreePointArc((28.937822174, 3.5), (28.238519216, 1.811733316), (28, 0))
            Line((28, 0), (30.836953373, 0))
            Line((30.836953373, 0), (30.836953373, 3.5))
            Line((30.836953373, 3.5), (28.937822174, 3.5))
        make_face()
    extrude(amount=-BOSS_EXTRUDE9_DEPTH)


with BuildPart() as cut_extrude4_piece_2:
    # of the separate pieces the step leaves, piece 2, a body of its own (cut_extrude4_pieces)
    add(part_1.part.solids().sort_by_distance((0, 1.15, 4.4))[0])

    # Sketch13 → Cut-Extrude5 (cut)
    with BuildSketch(Plane(origin=(0, 4.35, 0), x_dir=(1, 0, 0), z_dir=(0, 1, 0))):
        Circle(SKETCH13_R)
    extrude(amount=-CUT_EXTRUDE5_DEPTH, mode=Mode.SUBTRACT)


solid = cut_extrude4_piece_1.part
